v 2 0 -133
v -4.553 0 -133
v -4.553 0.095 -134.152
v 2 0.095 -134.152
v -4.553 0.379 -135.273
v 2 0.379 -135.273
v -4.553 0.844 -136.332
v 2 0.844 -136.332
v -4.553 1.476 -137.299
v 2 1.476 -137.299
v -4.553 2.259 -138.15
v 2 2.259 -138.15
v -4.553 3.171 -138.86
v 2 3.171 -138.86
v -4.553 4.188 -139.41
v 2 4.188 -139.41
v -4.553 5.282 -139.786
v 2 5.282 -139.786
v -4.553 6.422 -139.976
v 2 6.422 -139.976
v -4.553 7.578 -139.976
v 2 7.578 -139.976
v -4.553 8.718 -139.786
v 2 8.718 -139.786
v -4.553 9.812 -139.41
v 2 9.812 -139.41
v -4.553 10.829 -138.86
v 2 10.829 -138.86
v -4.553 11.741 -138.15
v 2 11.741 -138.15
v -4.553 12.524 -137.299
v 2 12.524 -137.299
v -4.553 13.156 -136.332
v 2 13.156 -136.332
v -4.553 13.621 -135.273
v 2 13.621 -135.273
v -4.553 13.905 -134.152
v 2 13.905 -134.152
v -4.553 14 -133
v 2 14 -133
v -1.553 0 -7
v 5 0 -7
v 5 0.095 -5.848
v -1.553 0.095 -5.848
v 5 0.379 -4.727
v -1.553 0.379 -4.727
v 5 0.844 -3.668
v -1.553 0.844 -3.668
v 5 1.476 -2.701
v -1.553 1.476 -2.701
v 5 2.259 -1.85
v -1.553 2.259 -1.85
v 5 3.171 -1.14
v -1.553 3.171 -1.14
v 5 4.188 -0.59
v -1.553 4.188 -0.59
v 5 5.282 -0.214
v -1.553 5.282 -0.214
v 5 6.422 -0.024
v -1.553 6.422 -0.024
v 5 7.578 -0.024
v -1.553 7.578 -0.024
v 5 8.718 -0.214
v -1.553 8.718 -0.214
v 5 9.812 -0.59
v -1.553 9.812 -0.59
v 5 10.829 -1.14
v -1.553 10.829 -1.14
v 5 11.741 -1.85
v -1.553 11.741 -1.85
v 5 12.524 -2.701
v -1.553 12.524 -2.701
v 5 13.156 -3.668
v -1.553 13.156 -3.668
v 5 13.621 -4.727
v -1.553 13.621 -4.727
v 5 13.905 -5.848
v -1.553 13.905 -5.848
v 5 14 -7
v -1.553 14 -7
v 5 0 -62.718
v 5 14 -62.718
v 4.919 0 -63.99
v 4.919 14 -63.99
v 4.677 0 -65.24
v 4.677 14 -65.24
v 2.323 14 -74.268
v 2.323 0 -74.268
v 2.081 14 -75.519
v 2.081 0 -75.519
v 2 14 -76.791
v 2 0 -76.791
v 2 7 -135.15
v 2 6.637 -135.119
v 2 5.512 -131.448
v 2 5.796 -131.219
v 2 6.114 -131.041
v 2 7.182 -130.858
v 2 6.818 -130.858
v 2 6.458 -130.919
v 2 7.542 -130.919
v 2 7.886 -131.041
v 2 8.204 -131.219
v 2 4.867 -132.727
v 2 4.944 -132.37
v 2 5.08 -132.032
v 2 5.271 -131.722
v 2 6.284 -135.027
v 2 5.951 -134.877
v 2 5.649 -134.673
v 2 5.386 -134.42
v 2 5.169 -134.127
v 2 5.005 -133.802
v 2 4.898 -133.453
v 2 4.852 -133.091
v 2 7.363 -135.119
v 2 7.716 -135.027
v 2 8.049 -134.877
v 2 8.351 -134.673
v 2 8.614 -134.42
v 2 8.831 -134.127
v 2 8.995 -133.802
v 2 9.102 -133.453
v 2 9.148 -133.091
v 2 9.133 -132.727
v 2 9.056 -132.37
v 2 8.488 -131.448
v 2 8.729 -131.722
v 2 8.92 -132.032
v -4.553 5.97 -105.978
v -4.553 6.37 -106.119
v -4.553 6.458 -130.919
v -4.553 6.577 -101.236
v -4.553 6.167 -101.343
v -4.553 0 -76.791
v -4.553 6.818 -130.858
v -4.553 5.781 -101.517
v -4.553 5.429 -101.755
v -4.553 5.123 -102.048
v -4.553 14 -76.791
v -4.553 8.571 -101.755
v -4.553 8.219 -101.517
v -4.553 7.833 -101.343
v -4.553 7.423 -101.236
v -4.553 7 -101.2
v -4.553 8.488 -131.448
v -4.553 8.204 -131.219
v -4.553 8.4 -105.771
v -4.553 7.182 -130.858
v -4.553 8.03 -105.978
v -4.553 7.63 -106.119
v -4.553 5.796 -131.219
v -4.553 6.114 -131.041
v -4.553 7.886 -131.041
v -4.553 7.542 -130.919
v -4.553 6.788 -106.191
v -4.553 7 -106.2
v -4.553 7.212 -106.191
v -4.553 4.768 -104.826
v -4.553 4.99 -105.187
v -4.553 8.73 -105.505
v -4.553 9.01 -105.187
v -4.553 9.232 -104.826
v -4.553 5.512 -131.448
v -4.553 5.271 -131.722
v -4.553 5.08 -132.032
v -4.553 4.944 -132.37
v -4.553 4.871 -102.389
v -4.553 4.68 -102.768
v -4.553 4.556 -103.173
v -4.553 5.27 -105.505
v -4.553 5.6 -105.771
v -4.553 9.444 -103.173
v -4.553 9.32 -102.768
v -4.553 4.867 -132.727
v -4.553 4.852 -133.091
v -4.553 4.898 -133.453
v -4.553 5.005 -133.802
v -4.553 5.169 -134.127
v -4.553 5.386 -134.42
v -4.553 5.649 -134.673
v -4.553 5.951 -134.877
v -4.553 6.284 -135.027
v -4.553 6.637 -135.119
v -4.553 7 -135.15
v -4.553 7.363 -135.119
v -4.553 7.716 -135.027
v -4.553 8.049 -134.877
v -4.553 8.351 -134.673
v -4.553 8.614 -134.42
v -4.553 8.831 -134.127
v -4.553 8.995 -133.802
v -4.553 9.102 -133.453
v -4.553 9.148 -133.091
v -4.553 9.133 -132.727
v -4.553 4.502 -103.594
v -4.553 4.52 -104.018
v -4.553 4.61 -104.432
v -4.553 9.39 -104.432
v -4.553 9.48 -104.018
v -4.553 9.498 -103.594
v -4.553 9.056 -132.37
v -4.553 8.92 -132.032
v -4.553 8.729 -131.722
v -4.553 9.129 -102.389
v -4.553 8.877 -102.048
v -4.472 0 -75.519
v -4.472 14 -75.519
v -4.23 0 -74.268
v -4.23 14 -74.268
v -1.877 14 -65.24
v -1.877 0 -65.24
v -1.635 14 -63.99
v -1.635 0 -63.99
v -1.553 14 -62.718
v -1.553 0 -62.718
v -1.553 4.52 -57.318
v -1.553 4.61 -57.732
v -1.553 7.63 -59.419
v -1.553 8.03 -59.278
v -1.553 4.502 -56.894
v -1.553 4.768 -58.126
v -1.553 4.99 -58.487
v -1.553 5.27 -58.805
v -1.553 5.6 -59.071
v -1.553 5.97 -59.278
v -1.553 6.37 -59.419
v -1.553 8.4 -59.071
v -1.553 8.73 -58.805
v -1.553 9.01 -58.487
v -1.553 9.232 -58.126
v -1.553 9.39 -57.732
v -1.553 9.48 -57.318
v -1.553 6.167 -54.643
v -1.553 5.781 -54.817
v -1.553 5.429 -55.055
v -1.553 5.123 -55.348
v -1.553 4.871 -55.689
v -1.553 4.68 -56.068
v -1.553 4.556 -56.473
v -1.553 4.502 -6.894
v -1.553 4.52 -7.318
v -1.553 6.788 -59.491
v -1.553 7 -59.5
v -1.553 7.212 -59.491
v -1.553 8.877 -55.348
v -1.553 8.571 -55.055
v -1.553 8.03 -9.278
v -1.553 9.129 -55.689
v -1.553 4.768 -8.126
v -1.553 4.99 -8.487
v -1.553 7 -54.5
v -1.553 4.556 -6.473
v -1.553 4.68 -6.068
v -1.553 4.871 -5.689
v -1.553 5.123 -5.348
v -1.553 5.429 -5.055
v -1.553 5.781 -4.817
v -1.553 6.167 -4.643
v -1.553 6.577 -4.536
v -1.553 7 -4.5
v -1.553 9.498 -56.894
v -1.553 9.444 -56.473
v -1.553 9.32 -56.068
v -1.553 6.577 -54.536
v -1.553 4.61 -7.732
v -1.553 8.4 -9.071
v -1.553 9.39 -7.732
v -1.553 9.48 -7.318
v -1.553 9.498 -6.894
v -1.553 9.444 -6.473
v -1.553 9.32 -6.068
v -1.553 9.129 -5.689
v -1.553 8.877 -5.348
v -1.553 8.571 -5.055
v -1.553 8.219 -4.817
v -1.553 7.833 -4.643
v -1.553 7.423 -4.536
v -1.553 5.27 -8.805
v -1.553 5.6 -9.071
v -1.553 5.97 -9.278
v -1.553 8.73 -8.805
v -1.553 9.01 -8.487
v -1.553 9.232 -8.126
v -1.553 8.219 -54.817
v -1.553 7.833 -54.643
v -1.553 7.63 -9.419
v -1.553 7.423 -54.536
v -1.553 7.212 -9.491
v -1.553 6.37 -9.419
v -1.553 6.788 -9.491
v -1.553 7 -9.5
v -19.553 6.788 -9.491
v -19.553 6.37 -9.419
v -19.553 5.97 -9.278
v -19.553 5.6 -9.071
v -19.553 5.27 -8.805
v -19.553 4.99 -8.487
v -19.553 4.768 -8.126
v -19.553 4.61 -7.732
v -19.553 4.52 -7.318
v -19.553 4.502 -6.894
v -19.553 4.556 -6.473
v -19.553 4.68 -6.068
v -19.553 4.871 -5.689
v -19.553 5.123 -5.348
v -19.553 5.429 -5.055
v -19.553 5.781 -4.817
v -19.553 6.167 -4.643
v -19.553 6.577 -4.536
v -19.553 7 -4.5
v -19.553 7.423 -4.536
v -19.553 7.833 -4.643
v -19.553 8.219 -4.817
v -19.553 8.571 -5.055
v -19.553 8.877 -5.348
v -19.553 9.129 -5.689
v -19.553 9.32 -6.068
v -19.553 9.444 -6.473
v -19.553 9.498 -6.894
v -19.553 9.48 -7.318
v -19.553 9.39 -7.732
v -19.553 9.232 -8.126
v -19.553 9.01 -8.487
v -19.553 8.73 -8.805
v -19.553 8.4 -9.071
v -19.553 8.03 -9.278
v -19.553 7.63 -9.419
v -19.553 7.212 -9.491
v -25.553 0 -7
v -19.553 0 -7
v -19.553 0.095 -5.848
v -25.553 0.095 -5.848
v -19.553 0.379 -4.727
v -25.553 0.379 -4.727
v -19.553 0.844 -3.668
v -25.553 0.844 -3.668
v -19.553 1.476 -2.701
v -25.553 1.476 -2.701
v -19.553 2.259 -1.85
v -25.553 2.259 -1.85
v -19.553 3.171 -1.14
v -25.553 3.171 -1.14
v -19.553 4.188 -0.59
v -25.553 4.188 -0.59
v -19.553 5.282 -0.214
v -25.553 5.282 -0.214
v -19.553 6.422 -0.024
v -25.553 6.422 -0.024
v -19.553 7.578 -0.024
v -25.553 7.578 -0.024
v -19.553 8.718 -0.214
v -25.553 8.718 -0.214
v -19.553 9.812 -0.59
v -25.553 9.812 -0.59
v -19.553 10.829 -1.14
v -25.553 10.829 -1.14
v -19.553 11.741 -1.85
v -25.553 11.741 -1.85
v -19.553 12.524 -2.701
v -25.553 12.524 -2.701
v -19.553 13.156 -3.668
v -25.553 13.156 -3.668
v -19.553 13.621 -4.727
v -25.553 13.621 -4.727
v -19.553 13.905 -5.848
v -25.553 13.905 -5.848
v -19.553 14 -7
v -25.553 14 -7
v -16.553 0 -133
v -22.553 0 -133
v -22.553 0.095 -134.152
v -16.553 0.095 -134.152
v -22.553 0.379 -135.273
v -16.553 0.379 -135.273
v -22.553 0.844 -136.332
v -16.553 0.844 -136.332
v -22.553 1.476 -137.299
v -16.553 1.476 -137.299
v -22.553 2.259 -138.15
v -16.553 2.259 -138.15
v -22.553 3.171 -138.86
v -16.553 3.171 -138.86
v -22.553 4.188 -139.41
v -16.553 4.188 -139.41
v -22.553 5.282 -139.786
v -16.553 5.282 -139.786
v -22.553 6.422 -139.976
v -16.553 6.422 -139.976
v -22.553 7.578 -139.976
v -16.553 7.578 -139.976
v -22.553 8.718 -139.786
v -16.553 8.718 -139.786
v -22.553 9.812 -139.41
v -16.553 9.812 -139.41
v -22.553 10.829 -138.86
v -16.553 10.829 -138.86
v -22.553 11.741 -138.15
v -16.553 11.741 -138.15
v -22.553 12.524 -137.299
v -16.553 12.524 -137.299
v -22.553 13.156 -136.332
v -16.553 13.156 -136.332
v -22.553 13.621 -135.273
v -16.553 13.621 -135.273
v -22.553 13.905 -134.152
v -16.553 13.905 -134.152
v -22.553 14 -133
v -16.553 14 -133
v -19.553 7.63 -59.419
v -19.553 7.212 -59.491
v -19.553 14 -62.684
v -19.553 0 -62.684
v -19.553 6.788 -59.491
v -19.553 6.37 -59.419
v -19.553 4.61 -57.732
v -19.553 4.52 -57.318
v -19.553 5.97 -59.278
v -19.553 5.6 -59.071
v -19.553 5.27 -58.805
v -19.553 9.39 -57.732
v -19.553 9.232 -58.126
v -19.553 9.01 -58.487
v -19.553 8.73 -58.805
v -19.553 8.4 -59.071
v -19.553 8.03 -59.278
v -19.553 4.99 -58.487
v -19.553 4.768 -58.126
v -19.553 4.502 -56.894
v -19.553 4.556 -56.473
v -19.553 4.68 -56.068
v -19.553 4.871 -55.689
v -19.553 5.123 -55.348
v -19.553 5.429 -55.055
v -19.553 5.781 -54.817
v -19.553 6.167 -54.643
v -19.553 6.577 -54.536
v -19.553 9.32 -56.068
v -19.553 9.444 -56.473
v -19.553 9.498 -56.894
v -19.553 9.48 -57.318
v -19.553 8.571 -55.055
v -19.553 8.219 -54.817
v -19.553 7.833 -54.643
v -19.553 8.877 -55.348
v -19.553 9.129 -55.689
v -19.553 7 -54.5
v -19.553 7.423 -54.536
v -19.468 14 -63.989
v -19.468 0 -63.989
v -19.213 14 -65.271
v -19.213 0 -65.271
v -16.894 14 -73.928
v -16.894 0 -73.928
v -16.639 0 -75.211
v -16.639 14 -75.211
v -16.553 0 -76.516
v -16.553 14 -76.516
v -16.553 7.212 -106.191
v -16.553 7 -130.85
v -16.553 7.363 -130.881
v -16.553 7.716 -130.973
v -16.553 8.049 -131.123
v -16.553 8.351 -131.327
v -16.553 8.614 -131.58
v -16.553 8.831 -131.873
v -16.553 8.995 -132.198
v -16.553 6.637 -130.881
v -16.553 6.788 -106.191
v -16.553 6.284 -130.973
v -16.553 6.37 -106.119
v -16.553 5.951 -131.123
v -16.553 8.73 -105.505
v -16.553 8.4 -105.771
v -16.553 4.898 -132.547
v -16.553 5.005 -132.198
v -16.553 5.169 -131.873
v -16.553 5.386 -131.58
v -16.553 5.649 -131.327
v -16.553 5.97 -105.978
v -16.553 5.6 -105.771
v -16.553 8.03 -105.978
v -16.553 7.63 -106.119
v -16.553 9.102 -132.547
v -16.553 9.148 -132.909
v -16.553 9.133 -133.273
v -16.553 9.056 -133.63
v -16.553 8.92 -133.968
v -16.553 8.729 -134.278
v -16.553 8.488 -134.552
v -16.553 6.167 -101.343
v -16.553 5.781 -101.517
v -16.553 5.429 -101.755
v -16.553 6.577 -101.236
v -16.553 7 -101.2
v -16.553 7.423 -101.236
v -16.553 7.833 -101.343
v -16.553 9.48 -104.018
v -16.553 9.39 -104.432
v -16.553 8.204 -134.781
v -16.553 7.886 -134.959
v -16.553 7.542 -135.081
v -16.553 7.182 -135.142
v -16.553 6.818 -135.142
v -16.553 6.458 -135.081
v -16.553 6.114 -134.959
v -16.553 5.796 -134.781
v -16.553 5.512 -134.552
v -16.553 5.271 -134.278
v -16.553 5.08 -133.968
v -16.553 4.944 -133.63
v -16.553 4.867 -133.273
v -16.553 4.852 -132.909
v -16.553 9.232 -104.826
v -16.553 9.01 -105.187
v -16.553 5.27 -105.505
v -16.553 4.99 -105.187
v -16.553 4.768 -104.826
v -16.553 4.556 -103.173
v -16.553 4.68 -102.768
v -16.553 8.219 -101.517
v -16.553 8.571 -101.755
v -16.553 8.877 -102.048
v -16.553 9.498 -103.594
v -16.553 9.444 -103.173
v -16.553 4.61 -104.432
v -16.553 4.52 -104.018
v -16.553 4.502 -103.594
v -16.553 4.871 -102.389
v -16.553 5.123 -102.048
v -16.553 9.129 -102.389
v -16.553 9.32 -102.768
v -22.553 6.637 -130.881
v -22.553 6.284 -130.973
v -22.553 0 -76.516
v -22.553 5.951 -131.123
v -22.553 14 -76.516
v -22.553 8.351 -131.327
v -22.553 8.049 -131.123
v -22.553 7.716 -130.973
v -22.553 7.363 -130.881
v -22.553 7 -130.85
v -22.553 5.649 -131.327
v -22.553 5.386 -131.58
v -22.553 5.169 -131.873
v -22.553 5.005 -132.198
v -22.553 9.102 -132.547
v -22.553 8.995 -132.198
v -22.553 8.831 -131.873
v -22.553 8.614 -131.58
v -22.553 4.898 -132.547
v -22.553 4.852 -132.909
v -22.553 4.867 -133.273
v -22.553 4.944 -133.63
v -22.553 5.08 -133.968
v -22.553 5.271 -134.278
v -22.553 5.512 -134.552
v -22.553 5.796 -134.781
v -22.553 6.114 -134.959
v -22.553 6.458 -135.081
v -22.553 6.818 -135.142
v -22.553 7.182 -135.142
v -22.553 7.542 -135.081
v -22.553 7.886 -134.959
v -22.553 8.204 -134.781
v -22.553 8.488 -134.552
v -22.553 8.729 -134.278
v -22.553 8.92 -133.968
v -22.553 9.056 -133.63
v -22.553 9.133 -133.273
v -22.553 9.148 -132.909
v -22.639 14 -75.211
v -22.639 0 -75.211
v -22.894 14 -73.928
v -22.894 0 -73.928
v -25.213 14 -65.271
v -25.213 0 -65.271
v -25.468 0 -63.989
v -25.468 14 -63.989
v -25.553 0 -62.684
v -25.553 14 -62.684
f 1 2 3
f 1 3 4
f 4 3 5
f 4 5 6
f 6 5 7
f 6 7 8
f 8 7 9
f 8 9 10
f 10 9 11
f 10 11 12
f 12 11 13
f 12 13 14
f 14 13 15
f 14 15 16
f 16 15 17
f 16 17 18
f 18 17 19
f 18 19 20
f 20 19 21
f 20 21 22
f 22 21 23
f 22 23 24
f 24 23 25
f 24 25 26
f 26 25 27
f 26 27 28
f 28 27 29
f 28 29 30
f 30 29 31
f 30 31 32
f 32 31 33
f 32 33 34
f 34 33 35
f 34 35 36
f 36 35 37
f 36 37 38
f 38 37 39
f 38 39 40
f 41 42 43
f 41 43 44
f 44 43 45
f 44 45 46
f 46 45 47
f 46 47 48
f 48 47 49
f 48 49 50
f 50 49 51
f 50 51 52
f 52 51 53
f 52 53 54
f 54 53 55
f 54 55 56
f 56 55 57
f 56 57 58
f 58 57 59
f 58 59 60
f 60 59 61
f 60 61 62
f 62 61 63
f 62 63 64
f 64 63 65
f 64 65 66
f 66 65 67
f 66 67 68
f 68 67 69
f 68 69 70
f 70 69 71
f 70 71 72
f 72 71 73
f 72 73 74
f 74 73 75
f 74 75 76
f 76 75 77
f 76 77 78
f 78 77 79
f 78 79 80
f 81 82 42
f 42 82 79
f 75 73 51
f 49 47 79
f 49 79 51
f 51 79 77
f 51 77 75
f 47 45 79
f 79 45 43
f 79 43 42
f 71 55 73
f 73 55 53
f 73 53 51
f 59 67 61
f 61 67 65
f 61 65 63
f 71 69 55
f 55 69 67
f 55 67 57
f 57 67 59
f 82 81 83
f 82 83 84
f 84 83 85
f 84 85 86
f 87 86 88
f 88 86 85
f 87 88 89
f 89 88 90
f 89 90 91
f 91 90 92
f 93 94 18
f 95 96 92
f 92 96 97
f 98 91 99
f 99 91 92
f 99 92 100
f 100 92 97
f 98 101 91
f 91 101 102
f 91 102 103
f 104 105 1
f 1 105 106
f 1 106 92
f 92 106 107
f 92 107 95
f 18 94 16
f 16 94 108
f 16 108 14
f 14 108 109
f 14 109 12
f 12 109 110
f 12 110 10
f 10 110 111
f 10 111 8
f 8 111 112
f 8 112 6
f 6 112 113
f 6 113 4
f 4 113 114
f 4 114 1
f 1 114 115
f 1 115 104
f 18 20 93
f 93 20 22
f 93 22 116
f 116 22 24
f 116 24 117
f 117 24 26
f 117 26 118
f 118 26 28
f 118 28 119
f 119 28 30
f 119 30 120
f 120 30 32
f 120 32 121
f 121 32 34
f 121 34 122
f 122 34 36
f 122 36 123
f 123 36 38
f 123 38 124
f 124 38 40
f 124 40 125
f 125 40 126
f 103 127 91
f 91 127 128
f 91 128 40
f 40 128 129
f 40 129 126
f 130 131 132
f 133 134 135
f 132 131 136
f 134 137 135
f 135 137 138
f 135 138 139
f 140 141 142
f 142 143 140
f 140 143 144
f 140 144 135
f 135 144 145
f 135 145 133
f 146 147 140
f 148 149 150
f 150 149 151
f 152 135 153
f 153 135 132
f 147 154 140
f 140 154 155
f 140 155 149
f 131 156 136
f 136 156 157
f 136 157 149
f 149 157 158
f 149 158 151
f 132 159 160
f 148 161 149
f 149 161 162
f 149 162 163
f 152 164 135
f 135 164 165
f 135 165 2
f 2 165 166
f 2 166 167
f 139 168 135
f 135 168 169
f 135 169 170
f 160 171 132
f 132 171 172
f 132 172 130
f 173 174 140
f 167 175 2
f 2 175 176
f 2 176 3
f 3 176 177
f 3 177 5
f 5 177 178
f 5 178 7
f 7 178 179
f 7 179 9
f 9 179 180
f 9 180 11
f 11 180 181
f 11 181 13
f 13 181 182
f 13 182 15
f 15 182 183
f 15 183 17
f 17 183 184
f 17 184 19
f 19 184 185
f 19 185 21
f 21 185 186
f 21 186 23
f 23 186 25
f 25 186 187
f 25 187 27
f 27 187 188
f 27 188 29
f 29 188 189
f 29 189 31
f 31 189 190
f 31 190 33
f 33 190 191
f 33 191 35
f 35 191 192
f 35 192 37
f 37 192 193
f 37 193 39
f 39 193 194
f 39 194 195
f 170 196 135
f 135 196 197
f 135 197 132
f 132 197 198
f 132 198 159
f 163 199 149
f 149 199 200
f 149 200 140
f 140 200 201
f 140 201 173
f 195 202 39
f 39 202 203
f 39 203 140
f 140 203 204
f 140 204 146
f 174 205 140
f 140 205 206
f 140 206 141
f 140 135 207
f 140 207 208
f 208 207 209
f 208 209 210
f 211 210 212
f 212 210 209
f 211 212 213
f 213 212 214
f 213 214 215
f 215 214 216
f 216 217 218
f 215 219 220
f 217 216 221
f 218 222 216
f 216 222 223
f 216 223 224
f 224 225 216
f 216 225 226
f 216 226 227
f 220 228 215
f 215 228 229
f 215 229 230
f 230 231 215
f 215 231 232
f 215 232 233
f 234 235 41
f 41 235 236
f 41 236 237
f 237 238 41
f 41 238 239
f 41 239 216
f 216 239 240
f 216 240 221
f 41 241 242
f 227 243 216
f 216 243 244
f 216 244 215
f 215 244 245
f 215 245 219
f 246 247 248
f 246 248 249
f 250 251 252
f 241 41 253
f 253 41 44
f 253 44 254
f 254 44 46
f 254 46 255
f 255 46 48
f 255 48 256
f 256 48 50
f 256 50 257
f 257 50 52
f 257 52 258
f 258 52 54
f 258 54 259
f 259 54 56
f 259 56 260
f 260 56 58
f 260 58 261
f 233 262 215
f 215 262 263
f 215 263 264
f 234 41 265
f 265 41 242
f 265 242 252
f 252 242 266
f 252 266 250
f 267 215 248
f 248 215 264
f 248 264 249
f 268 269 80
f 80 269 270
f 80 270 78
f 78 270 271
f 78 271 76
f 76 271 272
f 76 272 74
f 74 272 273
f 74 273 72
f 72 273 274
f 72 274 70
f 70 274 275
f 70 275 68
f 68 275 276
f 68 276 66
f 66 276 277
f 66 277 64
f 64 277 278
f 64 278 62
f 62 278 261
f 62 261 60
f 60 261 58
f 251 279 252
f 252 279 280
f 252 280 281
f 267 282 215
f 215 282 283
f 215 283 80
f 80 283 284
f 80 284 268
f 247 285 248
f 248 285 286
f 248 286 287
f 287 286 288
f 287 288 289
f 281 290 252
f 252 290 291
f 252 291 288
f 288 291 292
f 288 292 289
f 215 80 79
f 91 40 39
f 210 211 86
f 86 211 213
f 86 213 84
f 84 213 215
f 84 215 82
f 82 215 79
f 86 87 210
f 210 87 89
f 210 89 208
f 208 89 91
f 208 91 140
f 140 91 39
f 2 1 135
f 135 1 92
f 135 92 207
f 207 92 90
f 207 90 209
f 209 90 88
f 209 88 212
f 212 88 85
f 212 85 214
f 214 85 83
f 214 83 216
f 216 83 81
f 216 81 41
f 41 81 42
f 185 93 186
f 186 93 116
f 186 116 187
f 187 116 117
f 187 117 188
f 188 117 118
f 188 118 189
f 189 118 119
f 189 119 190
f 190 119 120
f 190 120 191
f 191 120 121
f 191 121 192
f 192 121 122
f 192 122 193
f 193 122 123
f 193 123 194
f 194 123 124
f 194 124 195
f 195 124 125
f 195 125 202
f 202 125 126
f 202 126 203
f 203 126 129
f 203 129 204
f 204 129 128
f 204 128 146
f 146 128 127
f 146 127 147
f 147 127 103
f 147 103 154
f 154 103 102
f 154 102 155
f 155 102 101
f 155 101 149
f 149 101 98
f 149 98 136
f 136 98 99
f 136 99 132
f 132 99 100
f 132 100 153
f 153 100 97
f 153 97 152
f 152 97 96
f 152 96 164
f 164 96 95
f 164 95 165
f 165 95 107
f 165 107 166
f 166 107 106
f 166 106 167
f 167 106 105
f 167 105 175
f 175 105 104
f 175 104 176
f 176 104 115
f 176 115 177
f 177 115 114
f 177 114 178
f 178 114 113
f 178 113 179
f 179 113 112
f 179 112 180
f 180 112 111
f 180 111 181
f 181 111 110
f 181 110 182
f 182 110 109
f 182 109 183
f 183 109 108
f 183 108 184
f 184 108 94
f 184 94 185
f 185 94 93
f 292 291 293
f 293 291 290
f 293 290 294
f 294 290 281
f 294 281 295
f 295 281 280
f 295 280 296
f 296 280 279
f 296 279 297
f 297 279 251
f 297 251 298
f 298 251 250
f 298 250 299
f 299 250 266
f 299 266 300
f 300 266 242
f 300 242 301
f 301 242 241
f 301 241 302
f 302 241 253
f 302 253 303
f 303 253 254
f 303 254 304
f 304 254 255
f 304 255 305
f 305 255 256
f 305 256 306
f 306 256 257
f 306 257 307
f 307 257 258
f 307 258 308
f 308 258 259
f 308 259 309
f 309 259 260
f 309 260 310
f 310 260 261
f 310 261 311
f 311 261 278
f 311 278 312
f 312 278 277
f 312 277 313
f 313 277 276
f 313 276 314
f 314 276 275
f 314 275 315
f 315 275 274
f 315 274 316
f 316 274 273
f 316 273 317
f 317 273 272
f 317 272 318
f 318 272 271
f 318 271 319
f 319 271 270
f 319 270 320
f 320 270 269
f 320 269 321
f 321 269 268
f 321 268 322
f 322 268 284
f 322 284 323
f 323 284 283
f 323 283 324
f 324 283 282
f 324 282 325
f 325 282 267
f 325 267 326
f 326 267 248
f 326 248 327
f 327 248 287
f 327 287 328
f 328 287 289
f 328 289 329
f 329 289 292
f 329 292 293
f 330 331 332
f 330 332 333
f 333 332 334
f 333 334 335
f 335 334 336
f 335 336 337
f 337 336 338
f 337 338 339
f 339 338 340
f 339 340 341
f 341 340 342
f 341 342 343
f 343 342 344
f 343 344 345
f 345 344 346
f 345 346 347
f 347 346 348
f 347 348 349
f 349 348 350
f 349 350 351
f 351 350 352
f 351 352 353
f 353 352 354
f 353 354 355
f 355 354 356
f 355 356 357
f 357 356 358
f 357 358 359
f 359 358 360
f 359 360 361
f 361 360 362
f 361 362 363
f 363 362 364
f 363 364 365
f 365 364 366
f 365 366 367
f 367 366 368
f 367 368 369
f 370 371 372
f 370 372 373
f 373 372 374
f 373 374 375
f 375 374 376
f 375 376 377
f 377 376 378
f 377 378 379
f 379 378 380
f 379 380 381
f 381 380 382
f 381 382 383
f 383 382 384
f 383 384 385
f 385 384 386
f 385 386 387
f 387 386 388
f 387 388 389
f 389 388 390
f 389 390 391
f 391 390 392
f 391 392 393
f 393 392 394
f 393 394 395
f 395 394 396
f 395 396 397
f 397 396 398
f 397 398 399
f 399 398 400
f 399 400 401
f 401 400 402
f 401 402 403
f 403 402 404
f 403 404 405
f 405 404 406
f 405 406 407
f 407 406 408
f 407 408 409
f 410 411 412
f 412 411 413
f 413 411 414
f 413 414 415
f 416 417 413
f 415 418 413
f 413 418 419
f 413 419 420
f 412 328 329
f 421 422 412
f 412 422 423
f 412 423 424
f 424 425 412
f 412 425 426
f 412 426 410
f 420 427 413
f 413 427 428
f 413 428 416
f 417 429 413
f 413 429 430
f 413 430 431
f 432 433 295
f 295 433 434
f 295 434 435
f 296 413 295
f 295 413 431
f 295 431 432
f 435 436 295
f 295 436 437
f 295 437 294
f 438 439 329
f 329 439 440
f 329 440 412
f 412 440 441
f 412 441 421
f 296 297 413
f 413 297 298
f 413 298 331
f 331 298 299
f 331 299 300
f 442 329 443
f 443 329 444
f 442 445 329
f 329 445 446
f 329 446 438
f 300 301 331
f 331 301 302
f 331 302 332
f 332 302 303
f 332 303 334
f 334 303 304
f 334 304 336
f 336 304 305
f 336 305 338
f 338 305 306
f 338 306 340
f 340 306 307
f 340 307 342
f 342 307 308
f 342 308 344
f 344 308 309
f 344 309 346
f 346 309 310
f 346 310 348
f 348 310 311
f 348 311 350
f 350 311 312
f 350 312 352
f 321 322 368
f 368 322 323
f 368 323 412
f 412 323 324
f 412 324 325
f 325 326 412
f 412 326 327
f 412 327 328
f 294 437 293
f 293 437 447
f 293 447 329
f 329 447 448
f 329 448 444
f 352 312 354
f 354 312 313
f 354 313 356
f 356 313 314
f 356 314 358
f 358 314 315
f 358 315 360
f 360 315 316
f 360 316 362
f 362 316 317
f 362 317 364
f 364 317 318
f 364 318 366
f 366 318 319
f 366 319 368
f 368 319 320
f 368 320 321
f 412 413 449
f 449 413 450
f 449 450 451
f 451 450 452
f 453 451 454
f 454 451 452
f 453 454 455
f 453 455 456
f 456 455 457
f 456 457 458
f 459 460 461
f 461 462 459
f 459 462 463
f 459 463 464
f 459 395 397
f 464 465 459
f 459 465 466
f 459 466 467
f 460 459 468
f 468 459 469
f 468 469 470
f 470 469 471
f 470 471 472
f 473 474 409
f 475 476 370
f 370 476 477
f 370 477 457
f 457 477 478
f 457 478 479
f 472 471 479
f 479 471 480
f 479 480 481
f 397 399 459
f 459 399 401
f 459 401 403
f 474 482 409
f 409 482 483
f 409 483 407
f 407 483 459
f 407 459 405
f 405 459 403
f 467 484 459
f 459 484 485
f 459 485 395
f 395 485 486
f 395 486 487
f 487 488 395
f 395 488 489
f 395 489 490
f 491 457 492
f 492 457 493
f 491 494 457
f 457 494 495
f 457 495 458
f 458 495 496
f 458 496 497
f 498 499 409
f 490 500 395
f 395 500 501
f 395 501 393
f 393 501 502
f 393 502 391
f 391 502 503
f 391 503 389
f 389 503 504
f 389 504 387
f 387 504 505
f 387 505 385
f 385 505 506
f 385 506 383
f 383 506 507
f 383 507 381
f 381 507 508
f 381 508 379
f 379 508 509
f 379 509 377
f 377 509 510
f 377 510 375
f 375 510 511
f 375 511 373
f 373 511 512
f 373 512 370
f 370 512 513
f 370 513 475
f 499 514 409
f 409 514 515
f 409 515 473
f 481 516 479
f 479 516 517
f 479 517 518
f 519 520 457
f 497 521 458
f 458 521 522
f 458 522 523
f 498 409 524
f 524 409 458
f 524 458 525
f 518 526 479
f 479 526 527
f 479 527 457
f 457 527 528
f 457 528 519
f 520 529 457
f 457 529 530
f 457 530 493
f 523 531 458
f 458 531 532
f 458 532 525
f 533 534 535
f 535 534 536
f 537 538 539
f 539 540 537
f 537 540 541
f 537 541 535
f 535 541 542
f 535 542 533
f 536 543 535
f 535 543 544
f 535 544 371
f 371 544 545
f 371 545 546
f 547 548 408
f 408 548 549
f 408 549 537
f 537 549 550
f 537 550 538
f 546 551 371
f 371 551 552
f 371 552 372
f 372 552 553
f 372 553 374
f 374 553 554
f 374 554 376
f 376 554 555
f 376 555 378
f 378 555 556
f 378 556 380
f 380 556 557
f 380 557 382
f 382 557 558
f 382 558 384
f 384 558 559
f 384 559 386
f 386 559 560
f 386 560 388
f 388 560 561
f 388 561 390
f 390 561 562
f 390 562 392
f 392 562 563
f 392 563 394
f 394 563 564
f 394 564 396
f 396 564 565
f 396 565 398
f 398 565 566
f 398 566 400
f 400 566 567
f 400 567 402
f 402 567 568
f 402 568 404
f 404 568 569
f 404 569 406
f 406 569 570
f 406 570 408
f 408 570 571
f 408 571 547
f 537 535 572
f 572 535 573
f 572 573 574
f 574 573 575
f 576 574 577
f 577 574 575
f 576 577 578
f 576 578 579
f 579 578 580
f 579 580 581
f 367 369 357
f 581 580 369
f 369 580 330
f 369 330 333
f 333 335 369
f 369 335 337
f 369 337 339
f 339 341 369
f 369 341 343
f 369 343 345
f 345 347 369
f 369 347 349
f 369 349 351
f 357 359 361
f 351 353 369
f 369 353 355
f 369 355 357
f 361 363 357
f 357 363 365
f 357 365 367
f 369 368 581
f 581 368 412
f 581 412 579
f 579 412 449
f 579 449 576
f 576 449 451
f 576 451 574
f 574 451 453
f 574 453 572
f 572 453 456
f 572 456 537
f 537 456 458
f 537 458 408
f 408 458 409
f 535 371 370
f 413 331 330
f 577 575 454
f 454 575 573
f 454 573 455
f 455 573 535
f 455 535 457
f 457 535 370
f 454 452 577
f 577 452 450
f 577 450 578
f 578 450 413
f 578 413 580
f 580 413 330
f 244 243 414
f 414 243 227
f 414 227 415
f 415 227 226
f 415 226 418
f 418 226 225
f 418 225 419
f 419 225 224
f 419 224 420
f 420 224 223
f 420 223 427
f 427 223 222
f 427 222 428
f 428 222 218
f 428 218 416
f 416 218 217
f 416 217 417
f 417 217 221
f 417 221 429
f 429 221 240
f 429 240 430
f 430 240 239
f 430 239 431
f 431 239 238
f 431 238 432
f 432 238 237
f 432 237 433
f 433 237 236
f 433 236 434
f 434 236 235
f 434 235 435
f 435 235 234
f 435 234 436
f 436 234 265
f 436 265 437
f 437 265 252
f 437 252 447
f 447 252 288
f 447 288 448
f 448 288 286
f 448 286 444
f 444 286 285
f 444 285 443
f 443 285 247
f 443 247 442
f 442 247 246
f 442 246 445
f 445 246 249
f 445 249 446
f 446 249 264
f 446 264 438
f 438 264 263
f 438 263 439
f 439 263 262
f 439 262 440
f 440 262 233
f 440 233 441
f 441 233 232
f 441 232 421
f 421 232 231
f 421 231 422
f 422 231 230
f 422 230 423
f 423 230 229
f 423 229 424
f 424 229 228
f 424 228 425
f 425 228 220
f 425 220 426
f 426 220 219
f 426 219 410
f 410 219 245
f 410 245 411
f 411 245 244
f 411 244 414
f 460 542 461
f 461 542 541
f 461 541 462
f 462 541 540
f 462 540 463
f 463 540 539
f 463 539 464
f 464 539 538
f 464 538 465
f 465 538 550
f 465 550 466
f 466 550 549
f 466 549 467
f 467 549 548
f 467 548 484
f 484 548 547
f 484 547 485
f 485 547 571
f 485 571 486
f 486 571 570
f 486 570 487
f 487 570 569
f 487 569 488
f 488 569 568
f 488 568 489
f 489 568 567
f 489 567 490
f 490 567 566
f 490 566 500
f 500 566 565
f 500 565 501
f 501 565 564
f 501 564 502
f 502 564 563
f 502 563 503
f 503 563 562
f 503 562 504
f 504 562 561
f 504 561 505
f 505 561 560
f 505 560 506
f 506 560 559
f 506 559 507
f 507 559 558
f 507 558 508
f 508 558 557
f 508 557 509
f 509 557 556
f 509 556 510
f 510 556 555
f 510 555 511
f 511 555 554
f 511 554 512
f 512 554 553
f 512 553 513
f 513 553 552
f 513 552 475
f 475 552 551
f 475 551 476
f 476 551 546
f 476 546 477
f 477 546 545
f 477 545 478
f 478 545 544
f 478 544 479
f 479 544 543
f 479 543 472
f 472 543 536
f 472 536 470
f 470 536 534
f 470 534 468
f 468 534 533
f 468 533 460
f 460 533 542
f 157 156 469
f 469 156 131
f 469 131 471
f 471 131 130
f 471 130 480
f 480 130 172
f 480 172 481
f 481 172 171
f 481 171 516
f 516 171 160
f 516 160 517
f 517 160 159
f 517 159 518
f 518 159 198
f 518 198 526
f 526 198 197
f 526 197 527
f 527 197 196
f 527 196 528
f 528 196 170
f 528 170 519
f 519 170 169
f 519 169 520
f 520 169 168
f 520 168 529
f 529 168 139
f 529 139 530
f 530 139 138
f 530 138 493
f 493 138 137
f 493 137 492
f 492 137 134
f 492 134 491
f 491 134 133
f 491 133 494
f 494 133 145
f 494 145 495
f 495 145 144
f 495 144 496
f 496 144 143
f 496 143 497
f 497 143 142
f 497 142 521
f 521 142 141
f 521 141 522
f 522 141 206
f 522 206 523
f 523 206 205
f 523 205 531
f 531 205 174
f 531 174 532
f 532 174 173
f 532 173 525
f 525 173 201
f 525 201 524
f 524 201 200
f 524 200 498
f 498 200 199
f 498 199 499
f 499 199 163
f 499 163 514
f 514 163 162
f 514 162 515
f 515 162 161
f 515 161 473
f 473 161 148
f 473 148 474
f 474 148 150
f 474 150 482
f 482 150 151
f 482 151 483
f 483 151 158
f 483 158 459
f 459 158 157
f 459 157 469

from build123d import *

# Parameters (mm, degrees)
EXTRUDE_2_DEPTH     = 14
FILLET_1_RADIUS     = 7
FILLET_1_LENGTH     = 6.553419282
FILLET_2_RADIUS     = 7
FILLET_2_LENGTH     = 6.553419282
CUT_EXTRUDE_1_REACH = 142.851
SKETCH_2_R          = 2.15
EXTRUDE_3_DEPTH     = 14
FILLET_3_RADIUS     = 7
FILLET_3_LENGTH     = 6
FILLET_4_RADIUS     = 7
FILLET_4_LENGTH     = 6
EXTRUDE_5_REACH     = 144.825
SKETCH_8_R          = 2.5
CUT_EXTRUDE_5_REACH = 145.371
SKETCH_10_R         = 2.15
EXTRUDE_6_REACH     = 144.34
SKETCH_11_R         = 2.5


with BuildPart() as part:
    # 草图1 → 凸台-拉伸2 (new body)
    with BuildSketch(Plane(origin=(0, 0, 0), x_dir=(1, 0, 0), z_dir=(0, 1, 0))):
        with BuildLine():
            Line((5, 0), (5, 62.718048915))
            ThreePointArc((5, 62.718048915), (4.918829182, 63.989594298), (4.676634468, 65.240497206))
            Line((4.676634468, 65.240497206), (2.323365532, 74.268124597))
            ThreePointArc((2.323365532, 74.268124597), (2.081170818, 75.519027505), (2, 76.790572889))
            Line((2, 76.790572889), (2, 140))
            Line((2, 140), (-4.553419282, 140))
            Line((-4.553419282, 140), (-4.553419282, 76.790572889))
            ThreePointArc((-4.553419282, 76.790572889), (-4.472248464, 75.519027505), (-4.23005375, 74.268124597))
            Line((-4.23005375, 74.268124597), (-1.876784815, 65.240497206))
            ThreePointArc((-1.876784815, 65.240497206), (-1.6345901, 63.989594298), (-1.553419282, 62.718048915))
            Line((-1.553419282, 62.718048915), (-1.553419282, 0))
            Line((-1.553419282, 0), (5, 0))
        make_face()
    extrude(amount=EXTRUDE_2_DEPTH)

    # 圆角1: full round fillet: the end face becomes a half cylinder, R = half its width
    fillet_1_face = Plane((1.723290359, 7, 0), x_dir=(1, 0, 0), z_dir=(0, 0, 1))  # on the end face: x along it, z out of the body
    fillet_1_slab = fillet_1_face.offset(-FILLET_1_RADIUS / 2) * Box(FILLET_1_LENGTH, 2 * FILLET_1_RADIUS, FILLET_1_RADIUS, mode=Mode.PRIVATE)  # the body's end, R deep
    fillet_1_round = Plane((1.723290359, 7, -7), x_dir=(0, 0, 1), z_dir=(1, 0, 0)) * Cylinder(FILLET_1_RADIUS, FILLET_1_LENGTH, mode=Mode.PRIVATE)  # its axis R under the face
    add(fillet_1_slab - fillet_1_round, mode=Mode.SUBTRACT)

    # 圆角2: full round fillet: the end face becomes a half cylinder, R = half its width
    fillet_2_face = Plane((-1.276709641, 7, -140), x_dir=(-1, 0, 0), z_dir=(0, 0, -1))  # on the end face: x along it, z out of the body
    fillet_2_slab = fillet_2_face.offset(-FILLET_2_RADIUS / 2) * Box(FILLET_2_LENGTH, 2 * FILLET_2_RADIUS, FILLET_2_RADIUS, mode=Mode.PRIVATE)  # the body's end, R deep
    fillet_2_round = Plane((-1.276709641, 7, -133), x_dir=(0, 0, -1), z_dir=(-1, 0, 0)) * Cylinder(FILLET_2_RADIUS, FILLET_2_LENGTH, mode=Mode.PRIVATE)  # its axis R under the face
    add(fillet_2_slab - fillet_2_round, mode=Mode.SUBTRACT)

    # 草图2 → 切除-拉伸1 (cut, up to next)
    with BuildSketch(Plane(origin=(2, 0, 0), x_dir=(0, 0, -1), z_dir=(1, 0, 0)), mode=Mode.PRIVATE) as cut_extrude_1_sk1:
        with Locations((133, 7)):
            Circle(SKETCH_2_R)
    cut_extrude_1_tool1 = extrude(cut_extrude_1_sk1.sketch, amount=-CUT_EXTRUDE_1_REACH, mode=Mode.PRIVATE) & part.part
    add(cut_extrude_1_tool1.solids().sort_by_distance((2, 7, -133))[0], mode=Mode.SUBTRACT)

    # 草图8 → 凸台-拉伸5 (add, up to next)
    with BuildSketch(Plane(origin=(-19.553419282, 0, 0), x_dir=(0, 0, -1), z_dir=(1, 0, 0)), mode=Mode.PRIVATE) as extrude_5_sk1:
        with Locations(Location((7, 7, 0), (0, 0, 180))):
            Circle(SKETCH_8_R)
    extrude_5_tool1 = extrude(extrude_5_sk1.sketch, amount=EXTRUDE_5_REACH, mode=Mode.PRIVATE) - part.part
    # 草图8 → 凸台-拉伸5 (add, up to next)
    with BuildSketch(Plane(origin=(-19.553419282, 0, 0), x_dir=(0, 0, -1), z_dir=(1, 0, 0)), mode=Mode.PRIVATE) as extrude_5_sk2:
        with Locations(Location((57, 7, 0), (0, 0, 180))):
            Circle(SKETCH_8_R)
    extrude_5_tool2 = extrude(extrude_5_sk2.sketch, amount=EXTRUDE_5_REACH, mode=Mode.PRIVATE) - part.part


with BuildPart() as body_2:
    # 草图4 → 凸台-拉伸3 (new body)
    with BuildSketch(Plane(origin=(0, 0, 0), x_dir=(1, 0, 0), z_dir=(0, 1, 0))):
        with BuildLine():
            Line((-19.553419282, 0), (-25.553419282, 0))
            Line((-25.553419282, 0), (-25.553419282, 62.683862831))
            ThreePointArc((-25.553419282, 62.683862831), (-25.467917646, 63.988746812), (-25.212874842, 65.271316849))
            Line((-25.212874842, 65.271316849), (-22.893963723, 73.928250938))
            ThreePointArc((-22.893963723, 73.928250938), (-22.638920919, 75.210820976), (-22.553419282, 76.515704957))
            Line((-22.553419282, 76.515704957), (-22.553419282, 140))
            Line((-22.553419282, 140), (-16.553419282, 140))
            Line((-16.553419282, 140), (-16.553419282, 76.515704957))
            ThreePointArc((-16.553419282, 76.515704957), (-16.638920919, 75.210820976), (-16.893963723, 73.928250938))
            Line((-16.893963723, 73.928250938), (-19.212874842, 65.271316849))
            ThreePointArc((-19.212874842, 65.271316849), (-19.467917646, 63.988746812), (-19.553419282, 62.683862831))
            Line((-19.553419282, 62.683862831), (-19.553419282, 0))
        make_face()
    extrude(amount=EXTRUDE_3_DEPTH)

    # 圆角3: full round fillet: the end face becomes a half cylinder, R = half its width
    fillet_3_face = Plane((-19.553419282, 7, -140), x_dir=(-1, 0, 0), z_dir=(0, 0, -1))  # on the end face: x along it, z out of the body
    fillet_3_slab = fillet_3_face.offset(-FILLET_3_RADIUS / 2) * Box(FILLET_3_LENGTH, 2 * FILLET_3_RADIUS, FILLET_3_RADIUS, mode=Mode.PRIVATE)  # the body's end, R deep
    fillet_3_round = Plane((-19.553419282, 7, -133), x_dir=(0, 0, -1), z_dir=(-1, 0, 0)) * Cylinder(FILLET_3_RADIUS, FILLET_3_LENGTH, mode=Mode.PRIVATE)  # its axis R under the face
    add(fillet_3_slab - fillet_3_round, mode=Mode.SUBTRACT)

    # 圆角4: full round fillet: the end face becomes a half cylinder, R = half its width
    fillet_4_face = Plane((-22.553419282, 7, 0), x_dir=(1, 0, 0), z_dir=(0, 0, 1))  # on the end face: x along it, z out of the body
    fillet_4_slab = fillet_4_face.offset(-FILLET_4_RADIUS / 2) * Box(FILLET_4_LENGTH, 2 * FILLET_4_RADIUS, FILLET_4_RADIUS, mode=Mode.PRIVATE)  # the body's end, R deep
    fillet_4_round = Plane((-22.553419282, 7, -7), x_dir=(0, 0, 1), z_dir=(1, 0, 0)) * Cylinder(FILLET_4_RADIUS, FILLET_4_LENGTH, mode=Mode.PRIVATE)  # its axis R under the face
    add(fillet_4_slab - fillet_4_round, mode=Mode.SUBTRACT)


with BuildPart() as part_1:
    add(part.part)

    add(body_2.part)  # 凸台-拉伸5 merges body 2
    add(extrude_5_tool1.solids().sort_by_distance((-19.553419, 7, -7))[0])
    add(extrude_5_tool2.solids().sort_by_distance((-19.553419, 7, -57))[0])

    # 草图10 → 切除-拉伸5 (cut, up to next)
    with BuildSketch(Plane.ZY.offset(22.553419282), mode=Mode.PRIVATE) as cut_extrude_5_sk1:
        with Locations(Location((-133, 7, 0), (0, 0, 180))):
            Circle(SKETCH_10_R)
    cut_extrude_5_tool1 = extrude(cut_extrude_5_sk1.sketch, amount=-CUT_EXTRUDE_5_REACH, mode=Mode.PRIVATE) & part_1.part
    add(cut_extrude_5_tool1.solids().sort_by_distance((-22.553419, 7, -133))[0], mode=Mode.SUBTRACT)

    # 草图11 → 凸台-拉伸6 (add, up to next)
    with BuildSketch(Plane(origin=(-16.553419282, 0, 0), x_dir=(0, 0, -1), z_dir=(1, 0, 0)), mode=Mode.PRIVATE) as extrude_6_sk1:
        with Locations(Location((103.7, 7, 0), (0, 0, 180))):
            Circle(SKETCH_11_R)
    extrude_6_tool1 = extrude(extrude_6_sk1.sketch, amount=EXTRUDE_6_REACH, mode=Mode.PRIVATE) - part_1.part
    add(extrude_6_tool1.solids().sort_by_distance((-16.553419, 7, -103.7))[0])


solid = part_1.part
